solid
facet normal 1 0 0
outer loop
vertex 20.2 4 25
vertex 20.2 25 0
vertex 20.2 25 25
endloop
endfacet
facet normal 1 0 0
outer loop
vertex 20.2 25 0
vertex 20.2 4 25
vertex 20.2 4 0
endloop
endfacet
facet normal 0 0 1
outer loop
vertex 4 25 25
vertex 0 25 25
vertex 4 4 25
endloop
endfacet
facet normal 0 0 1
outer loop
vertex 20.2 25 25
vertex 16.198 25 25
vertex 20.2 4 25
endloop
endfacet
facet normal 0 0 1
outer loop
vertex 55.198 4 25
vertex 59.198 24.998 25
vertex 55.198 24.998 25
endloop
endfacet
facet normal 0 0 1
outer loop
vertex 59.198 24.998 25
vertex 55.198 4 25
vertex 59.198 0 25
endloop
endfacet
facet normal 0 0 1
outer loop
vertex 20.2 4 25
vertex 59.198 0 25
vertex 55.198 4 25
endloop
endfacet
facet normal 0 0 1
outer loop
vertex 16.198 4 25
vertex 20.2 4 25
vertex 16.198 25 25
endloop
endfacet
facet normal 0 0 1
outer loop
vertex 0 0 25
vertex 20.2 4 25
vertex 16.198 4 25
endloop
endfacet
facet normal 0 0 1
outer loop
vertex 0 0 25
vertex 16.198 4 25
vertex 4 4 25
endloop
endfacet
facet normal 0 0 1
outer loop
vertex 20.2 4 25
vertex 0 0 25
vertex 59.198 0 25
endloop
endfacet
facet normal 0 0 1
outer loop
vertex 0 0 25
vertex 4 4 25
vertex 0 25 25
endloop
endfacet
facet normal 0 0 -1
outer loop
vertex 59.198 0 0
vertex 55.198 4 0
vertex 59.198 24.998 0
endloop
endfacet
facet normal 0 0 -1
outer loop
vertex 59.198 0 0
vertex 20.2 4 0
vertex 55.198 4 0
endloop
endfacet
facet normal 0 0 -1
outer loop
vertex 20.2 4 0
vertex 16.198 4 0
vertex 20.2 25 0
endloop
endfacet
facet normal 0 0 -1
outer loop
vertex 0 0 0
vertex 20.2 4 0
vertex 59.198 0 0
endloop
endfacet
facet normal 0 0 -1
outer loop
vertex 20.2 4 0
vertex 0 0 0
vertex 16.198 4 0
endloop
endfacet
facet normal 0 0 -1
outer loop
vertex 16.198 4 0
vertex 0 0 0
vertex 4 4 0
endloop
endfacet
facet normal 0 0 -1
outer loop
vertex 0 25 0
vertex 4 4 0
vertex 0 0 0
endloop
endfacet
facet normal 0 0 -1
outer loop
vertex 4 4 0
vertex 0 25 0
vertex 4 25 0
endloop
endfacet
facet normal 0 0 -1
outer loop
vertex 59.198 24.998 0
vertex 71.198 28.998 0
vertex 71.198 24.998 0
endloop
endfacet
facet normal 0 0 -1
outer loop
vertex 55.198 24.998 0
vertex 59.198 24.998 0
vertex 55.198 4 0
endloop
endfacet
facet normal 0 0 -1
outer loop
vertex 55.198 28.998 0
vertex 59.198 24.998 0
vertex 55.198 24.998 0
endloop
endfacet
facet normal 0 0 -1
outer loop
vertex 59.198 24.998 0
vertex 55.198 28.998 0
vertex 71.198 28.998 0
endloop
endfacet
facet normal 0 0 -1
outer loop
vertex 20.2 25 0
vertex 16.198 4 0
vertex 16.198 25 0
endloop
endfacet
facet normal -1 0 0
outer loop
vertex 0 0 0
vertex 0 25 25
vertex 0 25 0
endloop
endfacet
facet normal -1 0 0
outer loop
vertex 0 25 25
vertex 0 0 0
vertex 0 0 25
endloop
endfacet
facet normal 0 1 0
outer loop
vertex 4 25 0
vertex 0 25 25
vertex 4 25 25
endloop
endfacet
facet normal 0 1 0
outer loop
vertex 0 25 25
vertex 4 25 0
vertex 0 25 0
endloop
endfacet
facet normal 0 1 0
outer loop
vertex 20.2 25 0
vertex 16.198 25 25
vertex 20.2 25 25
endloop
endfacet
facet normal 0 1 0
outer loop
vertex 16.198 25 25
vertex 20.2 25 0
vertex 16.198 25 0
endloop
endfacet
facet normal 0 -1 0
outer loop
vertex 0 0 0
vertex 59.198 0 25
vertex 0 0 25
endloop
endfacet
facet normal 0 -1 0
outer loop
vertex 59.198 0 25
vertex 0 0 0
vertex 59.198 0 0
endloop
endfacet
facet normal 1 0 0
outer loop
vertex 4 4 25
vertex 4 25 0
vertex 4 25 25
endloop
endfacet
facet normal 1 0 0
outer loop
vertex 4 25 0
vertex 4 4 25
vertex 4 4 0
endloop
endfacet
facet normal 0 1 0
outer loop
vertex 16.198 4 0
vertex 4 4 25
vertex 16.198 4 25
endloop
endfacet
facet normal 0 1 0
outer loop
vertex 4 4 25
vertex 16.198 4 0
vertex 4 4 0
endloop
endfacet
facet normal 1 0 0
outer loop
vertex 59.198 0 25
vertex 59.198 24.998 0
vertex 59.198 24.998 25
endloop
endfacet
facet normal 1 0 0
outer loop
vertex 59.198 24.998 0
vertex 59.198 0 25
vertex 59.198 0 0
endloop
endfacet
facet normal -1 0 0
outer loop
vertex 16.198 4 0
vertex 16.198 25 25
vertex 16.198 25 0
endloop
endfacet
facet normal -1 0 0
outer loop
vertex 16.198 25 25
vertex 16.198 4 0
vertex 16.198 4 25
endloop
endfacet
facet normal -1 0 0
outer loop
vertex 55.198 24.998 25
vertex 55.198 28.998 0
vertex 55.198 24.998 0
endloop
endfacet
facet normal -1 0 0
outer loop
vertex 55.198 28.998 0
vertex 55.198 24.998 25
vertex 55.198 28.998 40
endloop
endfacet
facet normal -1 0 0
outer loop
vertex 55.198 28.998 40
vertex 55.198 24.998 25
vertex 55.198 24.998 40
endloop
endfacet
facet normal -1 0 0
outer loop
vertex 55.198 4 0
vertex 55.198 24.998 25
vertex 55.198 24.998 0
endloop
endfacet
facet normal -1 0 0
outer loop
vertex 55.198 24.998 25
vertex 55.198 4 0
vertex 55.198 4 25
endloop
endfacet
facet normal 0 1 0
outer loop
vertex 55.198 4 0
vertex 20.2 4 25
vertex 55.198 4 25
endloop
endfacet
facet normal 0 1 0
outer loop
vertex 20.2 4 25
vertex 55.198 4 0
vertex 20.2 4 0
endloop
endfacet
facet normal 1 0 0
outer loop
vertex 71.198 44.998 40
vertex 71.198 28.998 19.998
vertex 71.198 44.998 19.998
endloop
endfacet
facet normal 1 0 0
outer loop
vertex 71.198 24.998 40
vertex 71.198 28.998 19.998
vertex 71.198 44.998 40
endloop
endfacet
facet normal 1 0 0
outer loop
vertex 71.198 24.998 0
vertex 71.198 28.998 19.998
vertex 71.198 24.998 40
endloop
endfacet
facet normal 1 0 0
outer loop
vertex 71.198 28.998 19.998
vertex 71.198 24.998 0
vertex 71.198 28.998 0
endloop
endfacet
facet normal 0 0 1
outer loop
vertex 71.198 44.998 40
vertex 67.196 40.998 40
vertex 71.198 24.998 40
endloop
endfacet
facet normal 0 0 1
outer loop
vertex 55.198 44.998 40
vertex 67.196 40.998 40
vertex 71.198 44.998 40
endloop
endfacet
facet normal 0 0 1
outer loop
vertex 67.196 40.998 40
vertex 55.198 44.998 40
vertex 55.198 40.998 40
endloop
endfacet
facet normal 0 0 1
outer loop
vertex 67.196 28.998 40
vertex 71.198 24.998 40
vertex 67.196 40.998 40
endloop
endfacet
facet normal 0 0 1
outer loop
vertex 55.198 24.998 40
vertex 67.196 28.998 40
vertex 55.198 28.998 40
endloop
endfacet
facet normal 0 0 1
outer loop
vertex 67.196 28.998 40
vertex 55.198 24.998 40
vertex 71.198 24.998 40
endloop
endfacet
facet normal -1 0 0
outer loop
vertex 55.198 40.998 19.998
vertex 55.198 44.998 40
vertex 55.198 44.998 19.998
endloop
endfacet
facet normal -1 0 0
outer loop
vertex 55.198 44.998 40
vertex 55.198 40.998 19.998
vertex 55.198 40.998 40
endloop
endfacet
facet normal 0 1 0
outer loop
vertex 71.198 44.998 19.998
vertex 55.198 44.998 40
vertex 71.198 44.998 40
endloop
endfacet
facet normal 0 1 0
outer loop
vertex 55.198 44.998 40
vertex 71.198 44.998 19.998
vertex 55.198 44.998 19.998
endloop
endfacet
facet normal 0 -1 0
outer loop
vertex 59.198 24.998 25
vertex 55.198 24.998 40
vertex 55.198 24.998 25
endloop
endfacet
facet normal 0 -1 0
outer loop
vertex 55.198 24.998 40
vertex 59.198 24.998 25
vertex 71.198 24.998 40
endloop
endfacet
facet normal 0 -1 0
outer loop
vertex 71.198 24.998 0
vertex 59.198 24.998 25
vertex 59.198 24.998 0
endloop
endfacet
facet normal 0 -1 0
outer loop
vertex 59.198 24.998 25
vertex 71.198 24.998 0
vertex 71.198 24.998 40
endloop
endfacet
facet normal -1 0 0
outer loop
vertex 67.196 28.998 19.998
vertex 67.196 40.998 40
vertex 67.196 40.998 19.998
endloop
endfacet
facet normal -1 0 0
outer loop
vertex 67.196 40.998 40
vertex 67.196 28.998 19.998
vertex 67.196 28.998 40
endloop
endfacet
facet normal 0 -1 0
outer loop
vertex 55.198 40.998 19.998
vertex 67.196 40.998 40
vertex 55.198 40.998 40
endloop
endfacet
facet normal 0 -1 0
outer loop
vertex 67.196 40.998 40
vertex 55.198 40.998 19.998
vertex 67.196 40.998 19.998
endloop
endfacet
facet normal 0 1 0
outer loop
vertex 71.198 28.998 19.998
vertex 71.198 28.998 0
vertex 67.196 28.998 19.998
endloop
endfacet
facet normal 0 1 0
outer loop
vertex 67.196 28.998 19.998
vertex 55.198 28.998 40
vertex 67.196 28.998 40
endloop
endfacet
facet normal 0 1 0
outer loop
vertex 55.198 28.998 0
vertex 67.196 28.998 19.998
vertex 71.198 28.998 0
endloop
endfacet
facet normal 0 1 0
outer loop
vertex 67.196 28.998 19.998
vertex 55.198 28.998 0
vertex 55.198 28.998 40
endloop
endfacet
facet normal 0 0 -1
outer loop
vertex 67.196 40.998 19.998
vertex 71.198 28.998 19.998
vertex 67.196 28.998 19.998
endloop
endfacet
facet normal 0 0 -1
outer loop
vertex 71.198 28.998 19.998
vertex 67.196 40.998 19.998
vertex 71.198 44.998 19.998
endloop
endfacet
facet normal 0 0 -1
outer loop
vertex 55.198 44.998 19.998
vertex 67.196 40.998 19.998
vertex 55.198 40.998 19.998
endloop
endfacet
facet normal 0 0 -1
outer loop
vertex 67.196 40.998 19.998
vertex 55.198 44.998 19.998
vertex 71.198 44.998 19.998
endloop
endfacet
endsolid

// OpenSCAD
// Stair Gate Latch Bottom

eps = 0.002;
$fa = 1.0;
$fs = 0.1;

thickness = 4;

// Latch
// +0.2 tolerance
latch_gap_w = 12 + 0.2;
latch_w = latch_gap_w + 2 * thickness;
latch_d = 25;
latch_h = 25;

difference() {
  cube([latch_w, latch_d, latch_h]);
  translate([thickness, thickness, -eps])
    cube([latch_gap_w, latch_d, latch_h + 2 * eps]);
}

// Arm
// Share wall
arm_x = latch_w - eps - thickness;

arm_gap_w = 35;
arm_w = arm_gap_w + 2 * thickness;
arm_d = latch_d;
arm_h = latch_h;

translate([arm_x, 0, 0]) {
  difference() {
    cube([arm_w, arm_d, arm_h]);
    translate([thickness, thickness, -eps])
      cube([arm_gap_w, arm_d, arm_h + 2 * eps]);
  }
}

// Hook
// Share wall
hook_x = arm_x + arm_w - thickness;
hook_y = latch_d - eps;

hook_gap_d = 12;
hook_gap_w = hook_gap_d;
hook_w = hook_gap_w + thickness;
hook_d = hook_gap_d + 2 * thickness;

hook_cut_h = latch_h - 5;
hook_h = latch_h + 15;
translate([hook_x, hook_y, 0]) {
  difference() {
    cube([hook_w, hook_d, hook_h]);
    translate([-eps, thickness, -eps])
      cube([hook_gap_w, hook_gap_d, hook_h + 2 * eps]);
    translate([-eps, thickness, -eps])
      cube([hook_gap_w + thickness + 2 * eps, hook_gap_d + thickness + eps, hook_cut_h]);
  }
}
